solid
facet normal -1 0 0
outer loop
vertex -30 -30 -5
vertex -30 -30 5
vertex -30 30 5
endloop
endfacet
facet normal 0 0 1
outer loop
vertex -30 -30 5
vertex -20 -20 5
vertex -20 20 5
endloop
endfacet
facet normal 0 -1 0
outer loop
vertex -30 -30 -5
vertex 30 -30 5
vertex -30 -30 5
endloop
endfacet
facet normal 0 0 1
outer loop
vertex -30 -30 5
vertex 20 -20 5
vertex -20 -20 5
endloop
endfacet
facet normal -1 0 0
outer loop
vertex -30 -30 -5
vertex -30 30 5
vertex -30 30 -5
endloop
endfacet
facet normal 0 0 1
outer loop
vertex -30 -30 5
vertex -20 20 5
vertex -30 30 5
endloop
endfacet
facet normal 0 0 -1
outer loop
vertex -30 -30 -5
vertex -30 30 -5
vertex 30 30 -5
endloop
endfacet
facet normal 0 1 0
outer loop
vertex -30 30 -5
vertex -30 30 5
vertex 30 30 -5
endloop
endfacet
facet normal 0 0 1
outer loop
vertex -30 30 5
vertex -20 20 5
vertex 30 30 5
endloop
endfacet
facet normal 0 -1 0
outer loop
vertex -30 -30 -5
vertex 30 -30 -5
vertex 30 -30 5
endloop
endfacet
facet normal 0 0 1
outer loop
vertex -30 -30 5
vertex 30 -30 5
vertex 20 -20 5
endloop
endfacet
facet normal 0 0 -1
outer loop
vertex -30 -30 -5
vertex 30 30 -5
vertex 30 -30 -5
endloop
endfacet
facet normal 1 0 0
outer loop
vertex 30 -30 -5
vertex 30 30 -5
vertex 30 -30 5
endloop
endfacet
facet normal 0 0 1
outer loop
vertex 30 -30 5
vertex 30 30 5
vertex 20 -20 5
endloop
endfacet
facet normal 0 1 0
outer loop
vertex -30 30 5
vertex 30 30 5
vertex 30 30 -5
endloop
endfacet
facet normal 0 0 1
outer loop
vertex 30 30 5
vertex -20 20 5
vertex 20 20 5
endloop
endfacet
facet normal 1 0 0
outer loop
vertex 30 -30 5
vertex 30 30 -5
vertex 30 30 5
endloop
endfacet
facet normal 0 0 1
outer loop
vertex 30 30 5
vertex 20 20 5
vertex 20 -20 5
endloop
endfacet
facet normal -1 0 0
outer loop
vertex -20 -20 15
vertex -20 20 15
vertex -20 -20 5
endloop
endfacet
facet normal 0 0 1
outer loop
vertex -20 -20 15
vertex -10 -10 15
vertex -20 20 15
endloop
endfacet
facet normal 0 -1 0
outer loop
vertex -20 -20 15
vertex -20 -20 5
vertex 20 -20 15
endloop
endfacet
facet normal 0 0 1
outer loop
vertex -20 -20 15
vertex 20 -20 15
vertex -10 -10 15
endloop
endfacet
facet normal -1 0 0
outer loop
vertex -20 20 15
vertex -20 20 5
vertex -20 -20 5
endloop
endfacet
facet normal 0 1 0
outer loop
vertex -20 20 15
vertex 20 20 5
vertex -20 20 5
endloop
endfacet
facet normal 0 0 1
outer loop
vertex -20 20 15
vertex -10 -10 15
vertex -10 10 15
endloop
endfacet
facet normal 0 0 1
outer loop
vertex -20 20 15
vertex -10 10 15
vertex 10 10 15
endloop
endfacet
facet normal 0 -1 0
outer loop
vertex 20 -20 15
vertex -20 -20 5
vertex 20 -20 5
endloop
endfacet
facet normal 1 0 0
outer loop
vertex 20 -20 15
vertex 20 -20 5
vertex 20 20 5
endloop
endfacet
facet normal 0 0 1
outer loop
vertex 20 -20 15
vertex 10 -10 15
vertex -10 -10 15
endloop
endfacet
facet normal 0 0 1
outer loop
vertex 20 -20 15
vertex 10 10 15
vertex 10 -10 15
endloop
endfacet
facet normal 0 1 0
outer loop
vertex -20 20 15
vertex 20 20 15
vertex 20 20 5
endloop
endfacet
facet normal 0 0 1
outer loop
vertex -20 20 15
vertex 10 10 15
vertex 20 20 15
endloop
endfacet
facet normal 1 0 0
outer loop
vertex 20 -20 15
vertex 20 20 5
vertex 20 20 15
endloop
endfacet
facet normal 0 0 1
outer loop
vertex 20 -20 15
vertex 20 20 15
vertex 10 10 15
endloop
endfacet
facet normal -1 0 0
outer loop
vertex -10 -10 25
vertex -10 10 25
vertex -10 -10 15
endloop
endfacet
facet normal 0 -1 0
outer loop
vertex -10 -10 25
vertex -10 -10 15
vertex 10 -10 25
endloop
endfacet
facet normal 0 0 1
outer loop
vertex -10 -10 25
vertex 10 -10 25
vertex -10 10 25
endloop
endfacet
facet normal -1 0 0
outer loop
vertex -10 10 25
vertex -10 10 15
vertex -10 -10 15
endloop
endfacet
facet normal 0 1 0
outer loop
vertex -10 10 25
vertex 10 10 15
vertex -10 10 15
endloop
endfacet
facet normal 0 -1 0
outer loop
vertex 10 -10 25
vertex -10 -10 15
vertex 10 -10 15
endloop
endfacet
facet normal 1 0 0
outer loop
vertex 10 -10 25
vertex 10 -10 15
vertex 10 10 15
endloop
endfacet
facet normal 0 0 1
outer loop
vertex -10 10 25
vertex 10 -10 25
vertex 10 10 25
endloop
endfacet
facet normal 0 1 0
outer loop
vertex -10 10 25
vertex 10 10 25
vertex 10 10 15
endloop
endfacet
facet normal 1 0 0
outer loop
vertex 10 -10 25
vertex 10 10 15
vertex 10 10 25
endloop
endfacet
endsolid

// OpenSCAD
// 3段の階段状ピラミッド

// 1段目：60mm × 60mm × 10mm
cube([60, 60, 10], center = true);

// 2段目：40mm × 40mm × 10mm
translate([0, 0, 10])
    cube([40, 40, 10], center = true);

// 3段目：20mm × 20mm × 10mm
translate([0, 0, 20])
    cube([20, 20, 10], center = true);
